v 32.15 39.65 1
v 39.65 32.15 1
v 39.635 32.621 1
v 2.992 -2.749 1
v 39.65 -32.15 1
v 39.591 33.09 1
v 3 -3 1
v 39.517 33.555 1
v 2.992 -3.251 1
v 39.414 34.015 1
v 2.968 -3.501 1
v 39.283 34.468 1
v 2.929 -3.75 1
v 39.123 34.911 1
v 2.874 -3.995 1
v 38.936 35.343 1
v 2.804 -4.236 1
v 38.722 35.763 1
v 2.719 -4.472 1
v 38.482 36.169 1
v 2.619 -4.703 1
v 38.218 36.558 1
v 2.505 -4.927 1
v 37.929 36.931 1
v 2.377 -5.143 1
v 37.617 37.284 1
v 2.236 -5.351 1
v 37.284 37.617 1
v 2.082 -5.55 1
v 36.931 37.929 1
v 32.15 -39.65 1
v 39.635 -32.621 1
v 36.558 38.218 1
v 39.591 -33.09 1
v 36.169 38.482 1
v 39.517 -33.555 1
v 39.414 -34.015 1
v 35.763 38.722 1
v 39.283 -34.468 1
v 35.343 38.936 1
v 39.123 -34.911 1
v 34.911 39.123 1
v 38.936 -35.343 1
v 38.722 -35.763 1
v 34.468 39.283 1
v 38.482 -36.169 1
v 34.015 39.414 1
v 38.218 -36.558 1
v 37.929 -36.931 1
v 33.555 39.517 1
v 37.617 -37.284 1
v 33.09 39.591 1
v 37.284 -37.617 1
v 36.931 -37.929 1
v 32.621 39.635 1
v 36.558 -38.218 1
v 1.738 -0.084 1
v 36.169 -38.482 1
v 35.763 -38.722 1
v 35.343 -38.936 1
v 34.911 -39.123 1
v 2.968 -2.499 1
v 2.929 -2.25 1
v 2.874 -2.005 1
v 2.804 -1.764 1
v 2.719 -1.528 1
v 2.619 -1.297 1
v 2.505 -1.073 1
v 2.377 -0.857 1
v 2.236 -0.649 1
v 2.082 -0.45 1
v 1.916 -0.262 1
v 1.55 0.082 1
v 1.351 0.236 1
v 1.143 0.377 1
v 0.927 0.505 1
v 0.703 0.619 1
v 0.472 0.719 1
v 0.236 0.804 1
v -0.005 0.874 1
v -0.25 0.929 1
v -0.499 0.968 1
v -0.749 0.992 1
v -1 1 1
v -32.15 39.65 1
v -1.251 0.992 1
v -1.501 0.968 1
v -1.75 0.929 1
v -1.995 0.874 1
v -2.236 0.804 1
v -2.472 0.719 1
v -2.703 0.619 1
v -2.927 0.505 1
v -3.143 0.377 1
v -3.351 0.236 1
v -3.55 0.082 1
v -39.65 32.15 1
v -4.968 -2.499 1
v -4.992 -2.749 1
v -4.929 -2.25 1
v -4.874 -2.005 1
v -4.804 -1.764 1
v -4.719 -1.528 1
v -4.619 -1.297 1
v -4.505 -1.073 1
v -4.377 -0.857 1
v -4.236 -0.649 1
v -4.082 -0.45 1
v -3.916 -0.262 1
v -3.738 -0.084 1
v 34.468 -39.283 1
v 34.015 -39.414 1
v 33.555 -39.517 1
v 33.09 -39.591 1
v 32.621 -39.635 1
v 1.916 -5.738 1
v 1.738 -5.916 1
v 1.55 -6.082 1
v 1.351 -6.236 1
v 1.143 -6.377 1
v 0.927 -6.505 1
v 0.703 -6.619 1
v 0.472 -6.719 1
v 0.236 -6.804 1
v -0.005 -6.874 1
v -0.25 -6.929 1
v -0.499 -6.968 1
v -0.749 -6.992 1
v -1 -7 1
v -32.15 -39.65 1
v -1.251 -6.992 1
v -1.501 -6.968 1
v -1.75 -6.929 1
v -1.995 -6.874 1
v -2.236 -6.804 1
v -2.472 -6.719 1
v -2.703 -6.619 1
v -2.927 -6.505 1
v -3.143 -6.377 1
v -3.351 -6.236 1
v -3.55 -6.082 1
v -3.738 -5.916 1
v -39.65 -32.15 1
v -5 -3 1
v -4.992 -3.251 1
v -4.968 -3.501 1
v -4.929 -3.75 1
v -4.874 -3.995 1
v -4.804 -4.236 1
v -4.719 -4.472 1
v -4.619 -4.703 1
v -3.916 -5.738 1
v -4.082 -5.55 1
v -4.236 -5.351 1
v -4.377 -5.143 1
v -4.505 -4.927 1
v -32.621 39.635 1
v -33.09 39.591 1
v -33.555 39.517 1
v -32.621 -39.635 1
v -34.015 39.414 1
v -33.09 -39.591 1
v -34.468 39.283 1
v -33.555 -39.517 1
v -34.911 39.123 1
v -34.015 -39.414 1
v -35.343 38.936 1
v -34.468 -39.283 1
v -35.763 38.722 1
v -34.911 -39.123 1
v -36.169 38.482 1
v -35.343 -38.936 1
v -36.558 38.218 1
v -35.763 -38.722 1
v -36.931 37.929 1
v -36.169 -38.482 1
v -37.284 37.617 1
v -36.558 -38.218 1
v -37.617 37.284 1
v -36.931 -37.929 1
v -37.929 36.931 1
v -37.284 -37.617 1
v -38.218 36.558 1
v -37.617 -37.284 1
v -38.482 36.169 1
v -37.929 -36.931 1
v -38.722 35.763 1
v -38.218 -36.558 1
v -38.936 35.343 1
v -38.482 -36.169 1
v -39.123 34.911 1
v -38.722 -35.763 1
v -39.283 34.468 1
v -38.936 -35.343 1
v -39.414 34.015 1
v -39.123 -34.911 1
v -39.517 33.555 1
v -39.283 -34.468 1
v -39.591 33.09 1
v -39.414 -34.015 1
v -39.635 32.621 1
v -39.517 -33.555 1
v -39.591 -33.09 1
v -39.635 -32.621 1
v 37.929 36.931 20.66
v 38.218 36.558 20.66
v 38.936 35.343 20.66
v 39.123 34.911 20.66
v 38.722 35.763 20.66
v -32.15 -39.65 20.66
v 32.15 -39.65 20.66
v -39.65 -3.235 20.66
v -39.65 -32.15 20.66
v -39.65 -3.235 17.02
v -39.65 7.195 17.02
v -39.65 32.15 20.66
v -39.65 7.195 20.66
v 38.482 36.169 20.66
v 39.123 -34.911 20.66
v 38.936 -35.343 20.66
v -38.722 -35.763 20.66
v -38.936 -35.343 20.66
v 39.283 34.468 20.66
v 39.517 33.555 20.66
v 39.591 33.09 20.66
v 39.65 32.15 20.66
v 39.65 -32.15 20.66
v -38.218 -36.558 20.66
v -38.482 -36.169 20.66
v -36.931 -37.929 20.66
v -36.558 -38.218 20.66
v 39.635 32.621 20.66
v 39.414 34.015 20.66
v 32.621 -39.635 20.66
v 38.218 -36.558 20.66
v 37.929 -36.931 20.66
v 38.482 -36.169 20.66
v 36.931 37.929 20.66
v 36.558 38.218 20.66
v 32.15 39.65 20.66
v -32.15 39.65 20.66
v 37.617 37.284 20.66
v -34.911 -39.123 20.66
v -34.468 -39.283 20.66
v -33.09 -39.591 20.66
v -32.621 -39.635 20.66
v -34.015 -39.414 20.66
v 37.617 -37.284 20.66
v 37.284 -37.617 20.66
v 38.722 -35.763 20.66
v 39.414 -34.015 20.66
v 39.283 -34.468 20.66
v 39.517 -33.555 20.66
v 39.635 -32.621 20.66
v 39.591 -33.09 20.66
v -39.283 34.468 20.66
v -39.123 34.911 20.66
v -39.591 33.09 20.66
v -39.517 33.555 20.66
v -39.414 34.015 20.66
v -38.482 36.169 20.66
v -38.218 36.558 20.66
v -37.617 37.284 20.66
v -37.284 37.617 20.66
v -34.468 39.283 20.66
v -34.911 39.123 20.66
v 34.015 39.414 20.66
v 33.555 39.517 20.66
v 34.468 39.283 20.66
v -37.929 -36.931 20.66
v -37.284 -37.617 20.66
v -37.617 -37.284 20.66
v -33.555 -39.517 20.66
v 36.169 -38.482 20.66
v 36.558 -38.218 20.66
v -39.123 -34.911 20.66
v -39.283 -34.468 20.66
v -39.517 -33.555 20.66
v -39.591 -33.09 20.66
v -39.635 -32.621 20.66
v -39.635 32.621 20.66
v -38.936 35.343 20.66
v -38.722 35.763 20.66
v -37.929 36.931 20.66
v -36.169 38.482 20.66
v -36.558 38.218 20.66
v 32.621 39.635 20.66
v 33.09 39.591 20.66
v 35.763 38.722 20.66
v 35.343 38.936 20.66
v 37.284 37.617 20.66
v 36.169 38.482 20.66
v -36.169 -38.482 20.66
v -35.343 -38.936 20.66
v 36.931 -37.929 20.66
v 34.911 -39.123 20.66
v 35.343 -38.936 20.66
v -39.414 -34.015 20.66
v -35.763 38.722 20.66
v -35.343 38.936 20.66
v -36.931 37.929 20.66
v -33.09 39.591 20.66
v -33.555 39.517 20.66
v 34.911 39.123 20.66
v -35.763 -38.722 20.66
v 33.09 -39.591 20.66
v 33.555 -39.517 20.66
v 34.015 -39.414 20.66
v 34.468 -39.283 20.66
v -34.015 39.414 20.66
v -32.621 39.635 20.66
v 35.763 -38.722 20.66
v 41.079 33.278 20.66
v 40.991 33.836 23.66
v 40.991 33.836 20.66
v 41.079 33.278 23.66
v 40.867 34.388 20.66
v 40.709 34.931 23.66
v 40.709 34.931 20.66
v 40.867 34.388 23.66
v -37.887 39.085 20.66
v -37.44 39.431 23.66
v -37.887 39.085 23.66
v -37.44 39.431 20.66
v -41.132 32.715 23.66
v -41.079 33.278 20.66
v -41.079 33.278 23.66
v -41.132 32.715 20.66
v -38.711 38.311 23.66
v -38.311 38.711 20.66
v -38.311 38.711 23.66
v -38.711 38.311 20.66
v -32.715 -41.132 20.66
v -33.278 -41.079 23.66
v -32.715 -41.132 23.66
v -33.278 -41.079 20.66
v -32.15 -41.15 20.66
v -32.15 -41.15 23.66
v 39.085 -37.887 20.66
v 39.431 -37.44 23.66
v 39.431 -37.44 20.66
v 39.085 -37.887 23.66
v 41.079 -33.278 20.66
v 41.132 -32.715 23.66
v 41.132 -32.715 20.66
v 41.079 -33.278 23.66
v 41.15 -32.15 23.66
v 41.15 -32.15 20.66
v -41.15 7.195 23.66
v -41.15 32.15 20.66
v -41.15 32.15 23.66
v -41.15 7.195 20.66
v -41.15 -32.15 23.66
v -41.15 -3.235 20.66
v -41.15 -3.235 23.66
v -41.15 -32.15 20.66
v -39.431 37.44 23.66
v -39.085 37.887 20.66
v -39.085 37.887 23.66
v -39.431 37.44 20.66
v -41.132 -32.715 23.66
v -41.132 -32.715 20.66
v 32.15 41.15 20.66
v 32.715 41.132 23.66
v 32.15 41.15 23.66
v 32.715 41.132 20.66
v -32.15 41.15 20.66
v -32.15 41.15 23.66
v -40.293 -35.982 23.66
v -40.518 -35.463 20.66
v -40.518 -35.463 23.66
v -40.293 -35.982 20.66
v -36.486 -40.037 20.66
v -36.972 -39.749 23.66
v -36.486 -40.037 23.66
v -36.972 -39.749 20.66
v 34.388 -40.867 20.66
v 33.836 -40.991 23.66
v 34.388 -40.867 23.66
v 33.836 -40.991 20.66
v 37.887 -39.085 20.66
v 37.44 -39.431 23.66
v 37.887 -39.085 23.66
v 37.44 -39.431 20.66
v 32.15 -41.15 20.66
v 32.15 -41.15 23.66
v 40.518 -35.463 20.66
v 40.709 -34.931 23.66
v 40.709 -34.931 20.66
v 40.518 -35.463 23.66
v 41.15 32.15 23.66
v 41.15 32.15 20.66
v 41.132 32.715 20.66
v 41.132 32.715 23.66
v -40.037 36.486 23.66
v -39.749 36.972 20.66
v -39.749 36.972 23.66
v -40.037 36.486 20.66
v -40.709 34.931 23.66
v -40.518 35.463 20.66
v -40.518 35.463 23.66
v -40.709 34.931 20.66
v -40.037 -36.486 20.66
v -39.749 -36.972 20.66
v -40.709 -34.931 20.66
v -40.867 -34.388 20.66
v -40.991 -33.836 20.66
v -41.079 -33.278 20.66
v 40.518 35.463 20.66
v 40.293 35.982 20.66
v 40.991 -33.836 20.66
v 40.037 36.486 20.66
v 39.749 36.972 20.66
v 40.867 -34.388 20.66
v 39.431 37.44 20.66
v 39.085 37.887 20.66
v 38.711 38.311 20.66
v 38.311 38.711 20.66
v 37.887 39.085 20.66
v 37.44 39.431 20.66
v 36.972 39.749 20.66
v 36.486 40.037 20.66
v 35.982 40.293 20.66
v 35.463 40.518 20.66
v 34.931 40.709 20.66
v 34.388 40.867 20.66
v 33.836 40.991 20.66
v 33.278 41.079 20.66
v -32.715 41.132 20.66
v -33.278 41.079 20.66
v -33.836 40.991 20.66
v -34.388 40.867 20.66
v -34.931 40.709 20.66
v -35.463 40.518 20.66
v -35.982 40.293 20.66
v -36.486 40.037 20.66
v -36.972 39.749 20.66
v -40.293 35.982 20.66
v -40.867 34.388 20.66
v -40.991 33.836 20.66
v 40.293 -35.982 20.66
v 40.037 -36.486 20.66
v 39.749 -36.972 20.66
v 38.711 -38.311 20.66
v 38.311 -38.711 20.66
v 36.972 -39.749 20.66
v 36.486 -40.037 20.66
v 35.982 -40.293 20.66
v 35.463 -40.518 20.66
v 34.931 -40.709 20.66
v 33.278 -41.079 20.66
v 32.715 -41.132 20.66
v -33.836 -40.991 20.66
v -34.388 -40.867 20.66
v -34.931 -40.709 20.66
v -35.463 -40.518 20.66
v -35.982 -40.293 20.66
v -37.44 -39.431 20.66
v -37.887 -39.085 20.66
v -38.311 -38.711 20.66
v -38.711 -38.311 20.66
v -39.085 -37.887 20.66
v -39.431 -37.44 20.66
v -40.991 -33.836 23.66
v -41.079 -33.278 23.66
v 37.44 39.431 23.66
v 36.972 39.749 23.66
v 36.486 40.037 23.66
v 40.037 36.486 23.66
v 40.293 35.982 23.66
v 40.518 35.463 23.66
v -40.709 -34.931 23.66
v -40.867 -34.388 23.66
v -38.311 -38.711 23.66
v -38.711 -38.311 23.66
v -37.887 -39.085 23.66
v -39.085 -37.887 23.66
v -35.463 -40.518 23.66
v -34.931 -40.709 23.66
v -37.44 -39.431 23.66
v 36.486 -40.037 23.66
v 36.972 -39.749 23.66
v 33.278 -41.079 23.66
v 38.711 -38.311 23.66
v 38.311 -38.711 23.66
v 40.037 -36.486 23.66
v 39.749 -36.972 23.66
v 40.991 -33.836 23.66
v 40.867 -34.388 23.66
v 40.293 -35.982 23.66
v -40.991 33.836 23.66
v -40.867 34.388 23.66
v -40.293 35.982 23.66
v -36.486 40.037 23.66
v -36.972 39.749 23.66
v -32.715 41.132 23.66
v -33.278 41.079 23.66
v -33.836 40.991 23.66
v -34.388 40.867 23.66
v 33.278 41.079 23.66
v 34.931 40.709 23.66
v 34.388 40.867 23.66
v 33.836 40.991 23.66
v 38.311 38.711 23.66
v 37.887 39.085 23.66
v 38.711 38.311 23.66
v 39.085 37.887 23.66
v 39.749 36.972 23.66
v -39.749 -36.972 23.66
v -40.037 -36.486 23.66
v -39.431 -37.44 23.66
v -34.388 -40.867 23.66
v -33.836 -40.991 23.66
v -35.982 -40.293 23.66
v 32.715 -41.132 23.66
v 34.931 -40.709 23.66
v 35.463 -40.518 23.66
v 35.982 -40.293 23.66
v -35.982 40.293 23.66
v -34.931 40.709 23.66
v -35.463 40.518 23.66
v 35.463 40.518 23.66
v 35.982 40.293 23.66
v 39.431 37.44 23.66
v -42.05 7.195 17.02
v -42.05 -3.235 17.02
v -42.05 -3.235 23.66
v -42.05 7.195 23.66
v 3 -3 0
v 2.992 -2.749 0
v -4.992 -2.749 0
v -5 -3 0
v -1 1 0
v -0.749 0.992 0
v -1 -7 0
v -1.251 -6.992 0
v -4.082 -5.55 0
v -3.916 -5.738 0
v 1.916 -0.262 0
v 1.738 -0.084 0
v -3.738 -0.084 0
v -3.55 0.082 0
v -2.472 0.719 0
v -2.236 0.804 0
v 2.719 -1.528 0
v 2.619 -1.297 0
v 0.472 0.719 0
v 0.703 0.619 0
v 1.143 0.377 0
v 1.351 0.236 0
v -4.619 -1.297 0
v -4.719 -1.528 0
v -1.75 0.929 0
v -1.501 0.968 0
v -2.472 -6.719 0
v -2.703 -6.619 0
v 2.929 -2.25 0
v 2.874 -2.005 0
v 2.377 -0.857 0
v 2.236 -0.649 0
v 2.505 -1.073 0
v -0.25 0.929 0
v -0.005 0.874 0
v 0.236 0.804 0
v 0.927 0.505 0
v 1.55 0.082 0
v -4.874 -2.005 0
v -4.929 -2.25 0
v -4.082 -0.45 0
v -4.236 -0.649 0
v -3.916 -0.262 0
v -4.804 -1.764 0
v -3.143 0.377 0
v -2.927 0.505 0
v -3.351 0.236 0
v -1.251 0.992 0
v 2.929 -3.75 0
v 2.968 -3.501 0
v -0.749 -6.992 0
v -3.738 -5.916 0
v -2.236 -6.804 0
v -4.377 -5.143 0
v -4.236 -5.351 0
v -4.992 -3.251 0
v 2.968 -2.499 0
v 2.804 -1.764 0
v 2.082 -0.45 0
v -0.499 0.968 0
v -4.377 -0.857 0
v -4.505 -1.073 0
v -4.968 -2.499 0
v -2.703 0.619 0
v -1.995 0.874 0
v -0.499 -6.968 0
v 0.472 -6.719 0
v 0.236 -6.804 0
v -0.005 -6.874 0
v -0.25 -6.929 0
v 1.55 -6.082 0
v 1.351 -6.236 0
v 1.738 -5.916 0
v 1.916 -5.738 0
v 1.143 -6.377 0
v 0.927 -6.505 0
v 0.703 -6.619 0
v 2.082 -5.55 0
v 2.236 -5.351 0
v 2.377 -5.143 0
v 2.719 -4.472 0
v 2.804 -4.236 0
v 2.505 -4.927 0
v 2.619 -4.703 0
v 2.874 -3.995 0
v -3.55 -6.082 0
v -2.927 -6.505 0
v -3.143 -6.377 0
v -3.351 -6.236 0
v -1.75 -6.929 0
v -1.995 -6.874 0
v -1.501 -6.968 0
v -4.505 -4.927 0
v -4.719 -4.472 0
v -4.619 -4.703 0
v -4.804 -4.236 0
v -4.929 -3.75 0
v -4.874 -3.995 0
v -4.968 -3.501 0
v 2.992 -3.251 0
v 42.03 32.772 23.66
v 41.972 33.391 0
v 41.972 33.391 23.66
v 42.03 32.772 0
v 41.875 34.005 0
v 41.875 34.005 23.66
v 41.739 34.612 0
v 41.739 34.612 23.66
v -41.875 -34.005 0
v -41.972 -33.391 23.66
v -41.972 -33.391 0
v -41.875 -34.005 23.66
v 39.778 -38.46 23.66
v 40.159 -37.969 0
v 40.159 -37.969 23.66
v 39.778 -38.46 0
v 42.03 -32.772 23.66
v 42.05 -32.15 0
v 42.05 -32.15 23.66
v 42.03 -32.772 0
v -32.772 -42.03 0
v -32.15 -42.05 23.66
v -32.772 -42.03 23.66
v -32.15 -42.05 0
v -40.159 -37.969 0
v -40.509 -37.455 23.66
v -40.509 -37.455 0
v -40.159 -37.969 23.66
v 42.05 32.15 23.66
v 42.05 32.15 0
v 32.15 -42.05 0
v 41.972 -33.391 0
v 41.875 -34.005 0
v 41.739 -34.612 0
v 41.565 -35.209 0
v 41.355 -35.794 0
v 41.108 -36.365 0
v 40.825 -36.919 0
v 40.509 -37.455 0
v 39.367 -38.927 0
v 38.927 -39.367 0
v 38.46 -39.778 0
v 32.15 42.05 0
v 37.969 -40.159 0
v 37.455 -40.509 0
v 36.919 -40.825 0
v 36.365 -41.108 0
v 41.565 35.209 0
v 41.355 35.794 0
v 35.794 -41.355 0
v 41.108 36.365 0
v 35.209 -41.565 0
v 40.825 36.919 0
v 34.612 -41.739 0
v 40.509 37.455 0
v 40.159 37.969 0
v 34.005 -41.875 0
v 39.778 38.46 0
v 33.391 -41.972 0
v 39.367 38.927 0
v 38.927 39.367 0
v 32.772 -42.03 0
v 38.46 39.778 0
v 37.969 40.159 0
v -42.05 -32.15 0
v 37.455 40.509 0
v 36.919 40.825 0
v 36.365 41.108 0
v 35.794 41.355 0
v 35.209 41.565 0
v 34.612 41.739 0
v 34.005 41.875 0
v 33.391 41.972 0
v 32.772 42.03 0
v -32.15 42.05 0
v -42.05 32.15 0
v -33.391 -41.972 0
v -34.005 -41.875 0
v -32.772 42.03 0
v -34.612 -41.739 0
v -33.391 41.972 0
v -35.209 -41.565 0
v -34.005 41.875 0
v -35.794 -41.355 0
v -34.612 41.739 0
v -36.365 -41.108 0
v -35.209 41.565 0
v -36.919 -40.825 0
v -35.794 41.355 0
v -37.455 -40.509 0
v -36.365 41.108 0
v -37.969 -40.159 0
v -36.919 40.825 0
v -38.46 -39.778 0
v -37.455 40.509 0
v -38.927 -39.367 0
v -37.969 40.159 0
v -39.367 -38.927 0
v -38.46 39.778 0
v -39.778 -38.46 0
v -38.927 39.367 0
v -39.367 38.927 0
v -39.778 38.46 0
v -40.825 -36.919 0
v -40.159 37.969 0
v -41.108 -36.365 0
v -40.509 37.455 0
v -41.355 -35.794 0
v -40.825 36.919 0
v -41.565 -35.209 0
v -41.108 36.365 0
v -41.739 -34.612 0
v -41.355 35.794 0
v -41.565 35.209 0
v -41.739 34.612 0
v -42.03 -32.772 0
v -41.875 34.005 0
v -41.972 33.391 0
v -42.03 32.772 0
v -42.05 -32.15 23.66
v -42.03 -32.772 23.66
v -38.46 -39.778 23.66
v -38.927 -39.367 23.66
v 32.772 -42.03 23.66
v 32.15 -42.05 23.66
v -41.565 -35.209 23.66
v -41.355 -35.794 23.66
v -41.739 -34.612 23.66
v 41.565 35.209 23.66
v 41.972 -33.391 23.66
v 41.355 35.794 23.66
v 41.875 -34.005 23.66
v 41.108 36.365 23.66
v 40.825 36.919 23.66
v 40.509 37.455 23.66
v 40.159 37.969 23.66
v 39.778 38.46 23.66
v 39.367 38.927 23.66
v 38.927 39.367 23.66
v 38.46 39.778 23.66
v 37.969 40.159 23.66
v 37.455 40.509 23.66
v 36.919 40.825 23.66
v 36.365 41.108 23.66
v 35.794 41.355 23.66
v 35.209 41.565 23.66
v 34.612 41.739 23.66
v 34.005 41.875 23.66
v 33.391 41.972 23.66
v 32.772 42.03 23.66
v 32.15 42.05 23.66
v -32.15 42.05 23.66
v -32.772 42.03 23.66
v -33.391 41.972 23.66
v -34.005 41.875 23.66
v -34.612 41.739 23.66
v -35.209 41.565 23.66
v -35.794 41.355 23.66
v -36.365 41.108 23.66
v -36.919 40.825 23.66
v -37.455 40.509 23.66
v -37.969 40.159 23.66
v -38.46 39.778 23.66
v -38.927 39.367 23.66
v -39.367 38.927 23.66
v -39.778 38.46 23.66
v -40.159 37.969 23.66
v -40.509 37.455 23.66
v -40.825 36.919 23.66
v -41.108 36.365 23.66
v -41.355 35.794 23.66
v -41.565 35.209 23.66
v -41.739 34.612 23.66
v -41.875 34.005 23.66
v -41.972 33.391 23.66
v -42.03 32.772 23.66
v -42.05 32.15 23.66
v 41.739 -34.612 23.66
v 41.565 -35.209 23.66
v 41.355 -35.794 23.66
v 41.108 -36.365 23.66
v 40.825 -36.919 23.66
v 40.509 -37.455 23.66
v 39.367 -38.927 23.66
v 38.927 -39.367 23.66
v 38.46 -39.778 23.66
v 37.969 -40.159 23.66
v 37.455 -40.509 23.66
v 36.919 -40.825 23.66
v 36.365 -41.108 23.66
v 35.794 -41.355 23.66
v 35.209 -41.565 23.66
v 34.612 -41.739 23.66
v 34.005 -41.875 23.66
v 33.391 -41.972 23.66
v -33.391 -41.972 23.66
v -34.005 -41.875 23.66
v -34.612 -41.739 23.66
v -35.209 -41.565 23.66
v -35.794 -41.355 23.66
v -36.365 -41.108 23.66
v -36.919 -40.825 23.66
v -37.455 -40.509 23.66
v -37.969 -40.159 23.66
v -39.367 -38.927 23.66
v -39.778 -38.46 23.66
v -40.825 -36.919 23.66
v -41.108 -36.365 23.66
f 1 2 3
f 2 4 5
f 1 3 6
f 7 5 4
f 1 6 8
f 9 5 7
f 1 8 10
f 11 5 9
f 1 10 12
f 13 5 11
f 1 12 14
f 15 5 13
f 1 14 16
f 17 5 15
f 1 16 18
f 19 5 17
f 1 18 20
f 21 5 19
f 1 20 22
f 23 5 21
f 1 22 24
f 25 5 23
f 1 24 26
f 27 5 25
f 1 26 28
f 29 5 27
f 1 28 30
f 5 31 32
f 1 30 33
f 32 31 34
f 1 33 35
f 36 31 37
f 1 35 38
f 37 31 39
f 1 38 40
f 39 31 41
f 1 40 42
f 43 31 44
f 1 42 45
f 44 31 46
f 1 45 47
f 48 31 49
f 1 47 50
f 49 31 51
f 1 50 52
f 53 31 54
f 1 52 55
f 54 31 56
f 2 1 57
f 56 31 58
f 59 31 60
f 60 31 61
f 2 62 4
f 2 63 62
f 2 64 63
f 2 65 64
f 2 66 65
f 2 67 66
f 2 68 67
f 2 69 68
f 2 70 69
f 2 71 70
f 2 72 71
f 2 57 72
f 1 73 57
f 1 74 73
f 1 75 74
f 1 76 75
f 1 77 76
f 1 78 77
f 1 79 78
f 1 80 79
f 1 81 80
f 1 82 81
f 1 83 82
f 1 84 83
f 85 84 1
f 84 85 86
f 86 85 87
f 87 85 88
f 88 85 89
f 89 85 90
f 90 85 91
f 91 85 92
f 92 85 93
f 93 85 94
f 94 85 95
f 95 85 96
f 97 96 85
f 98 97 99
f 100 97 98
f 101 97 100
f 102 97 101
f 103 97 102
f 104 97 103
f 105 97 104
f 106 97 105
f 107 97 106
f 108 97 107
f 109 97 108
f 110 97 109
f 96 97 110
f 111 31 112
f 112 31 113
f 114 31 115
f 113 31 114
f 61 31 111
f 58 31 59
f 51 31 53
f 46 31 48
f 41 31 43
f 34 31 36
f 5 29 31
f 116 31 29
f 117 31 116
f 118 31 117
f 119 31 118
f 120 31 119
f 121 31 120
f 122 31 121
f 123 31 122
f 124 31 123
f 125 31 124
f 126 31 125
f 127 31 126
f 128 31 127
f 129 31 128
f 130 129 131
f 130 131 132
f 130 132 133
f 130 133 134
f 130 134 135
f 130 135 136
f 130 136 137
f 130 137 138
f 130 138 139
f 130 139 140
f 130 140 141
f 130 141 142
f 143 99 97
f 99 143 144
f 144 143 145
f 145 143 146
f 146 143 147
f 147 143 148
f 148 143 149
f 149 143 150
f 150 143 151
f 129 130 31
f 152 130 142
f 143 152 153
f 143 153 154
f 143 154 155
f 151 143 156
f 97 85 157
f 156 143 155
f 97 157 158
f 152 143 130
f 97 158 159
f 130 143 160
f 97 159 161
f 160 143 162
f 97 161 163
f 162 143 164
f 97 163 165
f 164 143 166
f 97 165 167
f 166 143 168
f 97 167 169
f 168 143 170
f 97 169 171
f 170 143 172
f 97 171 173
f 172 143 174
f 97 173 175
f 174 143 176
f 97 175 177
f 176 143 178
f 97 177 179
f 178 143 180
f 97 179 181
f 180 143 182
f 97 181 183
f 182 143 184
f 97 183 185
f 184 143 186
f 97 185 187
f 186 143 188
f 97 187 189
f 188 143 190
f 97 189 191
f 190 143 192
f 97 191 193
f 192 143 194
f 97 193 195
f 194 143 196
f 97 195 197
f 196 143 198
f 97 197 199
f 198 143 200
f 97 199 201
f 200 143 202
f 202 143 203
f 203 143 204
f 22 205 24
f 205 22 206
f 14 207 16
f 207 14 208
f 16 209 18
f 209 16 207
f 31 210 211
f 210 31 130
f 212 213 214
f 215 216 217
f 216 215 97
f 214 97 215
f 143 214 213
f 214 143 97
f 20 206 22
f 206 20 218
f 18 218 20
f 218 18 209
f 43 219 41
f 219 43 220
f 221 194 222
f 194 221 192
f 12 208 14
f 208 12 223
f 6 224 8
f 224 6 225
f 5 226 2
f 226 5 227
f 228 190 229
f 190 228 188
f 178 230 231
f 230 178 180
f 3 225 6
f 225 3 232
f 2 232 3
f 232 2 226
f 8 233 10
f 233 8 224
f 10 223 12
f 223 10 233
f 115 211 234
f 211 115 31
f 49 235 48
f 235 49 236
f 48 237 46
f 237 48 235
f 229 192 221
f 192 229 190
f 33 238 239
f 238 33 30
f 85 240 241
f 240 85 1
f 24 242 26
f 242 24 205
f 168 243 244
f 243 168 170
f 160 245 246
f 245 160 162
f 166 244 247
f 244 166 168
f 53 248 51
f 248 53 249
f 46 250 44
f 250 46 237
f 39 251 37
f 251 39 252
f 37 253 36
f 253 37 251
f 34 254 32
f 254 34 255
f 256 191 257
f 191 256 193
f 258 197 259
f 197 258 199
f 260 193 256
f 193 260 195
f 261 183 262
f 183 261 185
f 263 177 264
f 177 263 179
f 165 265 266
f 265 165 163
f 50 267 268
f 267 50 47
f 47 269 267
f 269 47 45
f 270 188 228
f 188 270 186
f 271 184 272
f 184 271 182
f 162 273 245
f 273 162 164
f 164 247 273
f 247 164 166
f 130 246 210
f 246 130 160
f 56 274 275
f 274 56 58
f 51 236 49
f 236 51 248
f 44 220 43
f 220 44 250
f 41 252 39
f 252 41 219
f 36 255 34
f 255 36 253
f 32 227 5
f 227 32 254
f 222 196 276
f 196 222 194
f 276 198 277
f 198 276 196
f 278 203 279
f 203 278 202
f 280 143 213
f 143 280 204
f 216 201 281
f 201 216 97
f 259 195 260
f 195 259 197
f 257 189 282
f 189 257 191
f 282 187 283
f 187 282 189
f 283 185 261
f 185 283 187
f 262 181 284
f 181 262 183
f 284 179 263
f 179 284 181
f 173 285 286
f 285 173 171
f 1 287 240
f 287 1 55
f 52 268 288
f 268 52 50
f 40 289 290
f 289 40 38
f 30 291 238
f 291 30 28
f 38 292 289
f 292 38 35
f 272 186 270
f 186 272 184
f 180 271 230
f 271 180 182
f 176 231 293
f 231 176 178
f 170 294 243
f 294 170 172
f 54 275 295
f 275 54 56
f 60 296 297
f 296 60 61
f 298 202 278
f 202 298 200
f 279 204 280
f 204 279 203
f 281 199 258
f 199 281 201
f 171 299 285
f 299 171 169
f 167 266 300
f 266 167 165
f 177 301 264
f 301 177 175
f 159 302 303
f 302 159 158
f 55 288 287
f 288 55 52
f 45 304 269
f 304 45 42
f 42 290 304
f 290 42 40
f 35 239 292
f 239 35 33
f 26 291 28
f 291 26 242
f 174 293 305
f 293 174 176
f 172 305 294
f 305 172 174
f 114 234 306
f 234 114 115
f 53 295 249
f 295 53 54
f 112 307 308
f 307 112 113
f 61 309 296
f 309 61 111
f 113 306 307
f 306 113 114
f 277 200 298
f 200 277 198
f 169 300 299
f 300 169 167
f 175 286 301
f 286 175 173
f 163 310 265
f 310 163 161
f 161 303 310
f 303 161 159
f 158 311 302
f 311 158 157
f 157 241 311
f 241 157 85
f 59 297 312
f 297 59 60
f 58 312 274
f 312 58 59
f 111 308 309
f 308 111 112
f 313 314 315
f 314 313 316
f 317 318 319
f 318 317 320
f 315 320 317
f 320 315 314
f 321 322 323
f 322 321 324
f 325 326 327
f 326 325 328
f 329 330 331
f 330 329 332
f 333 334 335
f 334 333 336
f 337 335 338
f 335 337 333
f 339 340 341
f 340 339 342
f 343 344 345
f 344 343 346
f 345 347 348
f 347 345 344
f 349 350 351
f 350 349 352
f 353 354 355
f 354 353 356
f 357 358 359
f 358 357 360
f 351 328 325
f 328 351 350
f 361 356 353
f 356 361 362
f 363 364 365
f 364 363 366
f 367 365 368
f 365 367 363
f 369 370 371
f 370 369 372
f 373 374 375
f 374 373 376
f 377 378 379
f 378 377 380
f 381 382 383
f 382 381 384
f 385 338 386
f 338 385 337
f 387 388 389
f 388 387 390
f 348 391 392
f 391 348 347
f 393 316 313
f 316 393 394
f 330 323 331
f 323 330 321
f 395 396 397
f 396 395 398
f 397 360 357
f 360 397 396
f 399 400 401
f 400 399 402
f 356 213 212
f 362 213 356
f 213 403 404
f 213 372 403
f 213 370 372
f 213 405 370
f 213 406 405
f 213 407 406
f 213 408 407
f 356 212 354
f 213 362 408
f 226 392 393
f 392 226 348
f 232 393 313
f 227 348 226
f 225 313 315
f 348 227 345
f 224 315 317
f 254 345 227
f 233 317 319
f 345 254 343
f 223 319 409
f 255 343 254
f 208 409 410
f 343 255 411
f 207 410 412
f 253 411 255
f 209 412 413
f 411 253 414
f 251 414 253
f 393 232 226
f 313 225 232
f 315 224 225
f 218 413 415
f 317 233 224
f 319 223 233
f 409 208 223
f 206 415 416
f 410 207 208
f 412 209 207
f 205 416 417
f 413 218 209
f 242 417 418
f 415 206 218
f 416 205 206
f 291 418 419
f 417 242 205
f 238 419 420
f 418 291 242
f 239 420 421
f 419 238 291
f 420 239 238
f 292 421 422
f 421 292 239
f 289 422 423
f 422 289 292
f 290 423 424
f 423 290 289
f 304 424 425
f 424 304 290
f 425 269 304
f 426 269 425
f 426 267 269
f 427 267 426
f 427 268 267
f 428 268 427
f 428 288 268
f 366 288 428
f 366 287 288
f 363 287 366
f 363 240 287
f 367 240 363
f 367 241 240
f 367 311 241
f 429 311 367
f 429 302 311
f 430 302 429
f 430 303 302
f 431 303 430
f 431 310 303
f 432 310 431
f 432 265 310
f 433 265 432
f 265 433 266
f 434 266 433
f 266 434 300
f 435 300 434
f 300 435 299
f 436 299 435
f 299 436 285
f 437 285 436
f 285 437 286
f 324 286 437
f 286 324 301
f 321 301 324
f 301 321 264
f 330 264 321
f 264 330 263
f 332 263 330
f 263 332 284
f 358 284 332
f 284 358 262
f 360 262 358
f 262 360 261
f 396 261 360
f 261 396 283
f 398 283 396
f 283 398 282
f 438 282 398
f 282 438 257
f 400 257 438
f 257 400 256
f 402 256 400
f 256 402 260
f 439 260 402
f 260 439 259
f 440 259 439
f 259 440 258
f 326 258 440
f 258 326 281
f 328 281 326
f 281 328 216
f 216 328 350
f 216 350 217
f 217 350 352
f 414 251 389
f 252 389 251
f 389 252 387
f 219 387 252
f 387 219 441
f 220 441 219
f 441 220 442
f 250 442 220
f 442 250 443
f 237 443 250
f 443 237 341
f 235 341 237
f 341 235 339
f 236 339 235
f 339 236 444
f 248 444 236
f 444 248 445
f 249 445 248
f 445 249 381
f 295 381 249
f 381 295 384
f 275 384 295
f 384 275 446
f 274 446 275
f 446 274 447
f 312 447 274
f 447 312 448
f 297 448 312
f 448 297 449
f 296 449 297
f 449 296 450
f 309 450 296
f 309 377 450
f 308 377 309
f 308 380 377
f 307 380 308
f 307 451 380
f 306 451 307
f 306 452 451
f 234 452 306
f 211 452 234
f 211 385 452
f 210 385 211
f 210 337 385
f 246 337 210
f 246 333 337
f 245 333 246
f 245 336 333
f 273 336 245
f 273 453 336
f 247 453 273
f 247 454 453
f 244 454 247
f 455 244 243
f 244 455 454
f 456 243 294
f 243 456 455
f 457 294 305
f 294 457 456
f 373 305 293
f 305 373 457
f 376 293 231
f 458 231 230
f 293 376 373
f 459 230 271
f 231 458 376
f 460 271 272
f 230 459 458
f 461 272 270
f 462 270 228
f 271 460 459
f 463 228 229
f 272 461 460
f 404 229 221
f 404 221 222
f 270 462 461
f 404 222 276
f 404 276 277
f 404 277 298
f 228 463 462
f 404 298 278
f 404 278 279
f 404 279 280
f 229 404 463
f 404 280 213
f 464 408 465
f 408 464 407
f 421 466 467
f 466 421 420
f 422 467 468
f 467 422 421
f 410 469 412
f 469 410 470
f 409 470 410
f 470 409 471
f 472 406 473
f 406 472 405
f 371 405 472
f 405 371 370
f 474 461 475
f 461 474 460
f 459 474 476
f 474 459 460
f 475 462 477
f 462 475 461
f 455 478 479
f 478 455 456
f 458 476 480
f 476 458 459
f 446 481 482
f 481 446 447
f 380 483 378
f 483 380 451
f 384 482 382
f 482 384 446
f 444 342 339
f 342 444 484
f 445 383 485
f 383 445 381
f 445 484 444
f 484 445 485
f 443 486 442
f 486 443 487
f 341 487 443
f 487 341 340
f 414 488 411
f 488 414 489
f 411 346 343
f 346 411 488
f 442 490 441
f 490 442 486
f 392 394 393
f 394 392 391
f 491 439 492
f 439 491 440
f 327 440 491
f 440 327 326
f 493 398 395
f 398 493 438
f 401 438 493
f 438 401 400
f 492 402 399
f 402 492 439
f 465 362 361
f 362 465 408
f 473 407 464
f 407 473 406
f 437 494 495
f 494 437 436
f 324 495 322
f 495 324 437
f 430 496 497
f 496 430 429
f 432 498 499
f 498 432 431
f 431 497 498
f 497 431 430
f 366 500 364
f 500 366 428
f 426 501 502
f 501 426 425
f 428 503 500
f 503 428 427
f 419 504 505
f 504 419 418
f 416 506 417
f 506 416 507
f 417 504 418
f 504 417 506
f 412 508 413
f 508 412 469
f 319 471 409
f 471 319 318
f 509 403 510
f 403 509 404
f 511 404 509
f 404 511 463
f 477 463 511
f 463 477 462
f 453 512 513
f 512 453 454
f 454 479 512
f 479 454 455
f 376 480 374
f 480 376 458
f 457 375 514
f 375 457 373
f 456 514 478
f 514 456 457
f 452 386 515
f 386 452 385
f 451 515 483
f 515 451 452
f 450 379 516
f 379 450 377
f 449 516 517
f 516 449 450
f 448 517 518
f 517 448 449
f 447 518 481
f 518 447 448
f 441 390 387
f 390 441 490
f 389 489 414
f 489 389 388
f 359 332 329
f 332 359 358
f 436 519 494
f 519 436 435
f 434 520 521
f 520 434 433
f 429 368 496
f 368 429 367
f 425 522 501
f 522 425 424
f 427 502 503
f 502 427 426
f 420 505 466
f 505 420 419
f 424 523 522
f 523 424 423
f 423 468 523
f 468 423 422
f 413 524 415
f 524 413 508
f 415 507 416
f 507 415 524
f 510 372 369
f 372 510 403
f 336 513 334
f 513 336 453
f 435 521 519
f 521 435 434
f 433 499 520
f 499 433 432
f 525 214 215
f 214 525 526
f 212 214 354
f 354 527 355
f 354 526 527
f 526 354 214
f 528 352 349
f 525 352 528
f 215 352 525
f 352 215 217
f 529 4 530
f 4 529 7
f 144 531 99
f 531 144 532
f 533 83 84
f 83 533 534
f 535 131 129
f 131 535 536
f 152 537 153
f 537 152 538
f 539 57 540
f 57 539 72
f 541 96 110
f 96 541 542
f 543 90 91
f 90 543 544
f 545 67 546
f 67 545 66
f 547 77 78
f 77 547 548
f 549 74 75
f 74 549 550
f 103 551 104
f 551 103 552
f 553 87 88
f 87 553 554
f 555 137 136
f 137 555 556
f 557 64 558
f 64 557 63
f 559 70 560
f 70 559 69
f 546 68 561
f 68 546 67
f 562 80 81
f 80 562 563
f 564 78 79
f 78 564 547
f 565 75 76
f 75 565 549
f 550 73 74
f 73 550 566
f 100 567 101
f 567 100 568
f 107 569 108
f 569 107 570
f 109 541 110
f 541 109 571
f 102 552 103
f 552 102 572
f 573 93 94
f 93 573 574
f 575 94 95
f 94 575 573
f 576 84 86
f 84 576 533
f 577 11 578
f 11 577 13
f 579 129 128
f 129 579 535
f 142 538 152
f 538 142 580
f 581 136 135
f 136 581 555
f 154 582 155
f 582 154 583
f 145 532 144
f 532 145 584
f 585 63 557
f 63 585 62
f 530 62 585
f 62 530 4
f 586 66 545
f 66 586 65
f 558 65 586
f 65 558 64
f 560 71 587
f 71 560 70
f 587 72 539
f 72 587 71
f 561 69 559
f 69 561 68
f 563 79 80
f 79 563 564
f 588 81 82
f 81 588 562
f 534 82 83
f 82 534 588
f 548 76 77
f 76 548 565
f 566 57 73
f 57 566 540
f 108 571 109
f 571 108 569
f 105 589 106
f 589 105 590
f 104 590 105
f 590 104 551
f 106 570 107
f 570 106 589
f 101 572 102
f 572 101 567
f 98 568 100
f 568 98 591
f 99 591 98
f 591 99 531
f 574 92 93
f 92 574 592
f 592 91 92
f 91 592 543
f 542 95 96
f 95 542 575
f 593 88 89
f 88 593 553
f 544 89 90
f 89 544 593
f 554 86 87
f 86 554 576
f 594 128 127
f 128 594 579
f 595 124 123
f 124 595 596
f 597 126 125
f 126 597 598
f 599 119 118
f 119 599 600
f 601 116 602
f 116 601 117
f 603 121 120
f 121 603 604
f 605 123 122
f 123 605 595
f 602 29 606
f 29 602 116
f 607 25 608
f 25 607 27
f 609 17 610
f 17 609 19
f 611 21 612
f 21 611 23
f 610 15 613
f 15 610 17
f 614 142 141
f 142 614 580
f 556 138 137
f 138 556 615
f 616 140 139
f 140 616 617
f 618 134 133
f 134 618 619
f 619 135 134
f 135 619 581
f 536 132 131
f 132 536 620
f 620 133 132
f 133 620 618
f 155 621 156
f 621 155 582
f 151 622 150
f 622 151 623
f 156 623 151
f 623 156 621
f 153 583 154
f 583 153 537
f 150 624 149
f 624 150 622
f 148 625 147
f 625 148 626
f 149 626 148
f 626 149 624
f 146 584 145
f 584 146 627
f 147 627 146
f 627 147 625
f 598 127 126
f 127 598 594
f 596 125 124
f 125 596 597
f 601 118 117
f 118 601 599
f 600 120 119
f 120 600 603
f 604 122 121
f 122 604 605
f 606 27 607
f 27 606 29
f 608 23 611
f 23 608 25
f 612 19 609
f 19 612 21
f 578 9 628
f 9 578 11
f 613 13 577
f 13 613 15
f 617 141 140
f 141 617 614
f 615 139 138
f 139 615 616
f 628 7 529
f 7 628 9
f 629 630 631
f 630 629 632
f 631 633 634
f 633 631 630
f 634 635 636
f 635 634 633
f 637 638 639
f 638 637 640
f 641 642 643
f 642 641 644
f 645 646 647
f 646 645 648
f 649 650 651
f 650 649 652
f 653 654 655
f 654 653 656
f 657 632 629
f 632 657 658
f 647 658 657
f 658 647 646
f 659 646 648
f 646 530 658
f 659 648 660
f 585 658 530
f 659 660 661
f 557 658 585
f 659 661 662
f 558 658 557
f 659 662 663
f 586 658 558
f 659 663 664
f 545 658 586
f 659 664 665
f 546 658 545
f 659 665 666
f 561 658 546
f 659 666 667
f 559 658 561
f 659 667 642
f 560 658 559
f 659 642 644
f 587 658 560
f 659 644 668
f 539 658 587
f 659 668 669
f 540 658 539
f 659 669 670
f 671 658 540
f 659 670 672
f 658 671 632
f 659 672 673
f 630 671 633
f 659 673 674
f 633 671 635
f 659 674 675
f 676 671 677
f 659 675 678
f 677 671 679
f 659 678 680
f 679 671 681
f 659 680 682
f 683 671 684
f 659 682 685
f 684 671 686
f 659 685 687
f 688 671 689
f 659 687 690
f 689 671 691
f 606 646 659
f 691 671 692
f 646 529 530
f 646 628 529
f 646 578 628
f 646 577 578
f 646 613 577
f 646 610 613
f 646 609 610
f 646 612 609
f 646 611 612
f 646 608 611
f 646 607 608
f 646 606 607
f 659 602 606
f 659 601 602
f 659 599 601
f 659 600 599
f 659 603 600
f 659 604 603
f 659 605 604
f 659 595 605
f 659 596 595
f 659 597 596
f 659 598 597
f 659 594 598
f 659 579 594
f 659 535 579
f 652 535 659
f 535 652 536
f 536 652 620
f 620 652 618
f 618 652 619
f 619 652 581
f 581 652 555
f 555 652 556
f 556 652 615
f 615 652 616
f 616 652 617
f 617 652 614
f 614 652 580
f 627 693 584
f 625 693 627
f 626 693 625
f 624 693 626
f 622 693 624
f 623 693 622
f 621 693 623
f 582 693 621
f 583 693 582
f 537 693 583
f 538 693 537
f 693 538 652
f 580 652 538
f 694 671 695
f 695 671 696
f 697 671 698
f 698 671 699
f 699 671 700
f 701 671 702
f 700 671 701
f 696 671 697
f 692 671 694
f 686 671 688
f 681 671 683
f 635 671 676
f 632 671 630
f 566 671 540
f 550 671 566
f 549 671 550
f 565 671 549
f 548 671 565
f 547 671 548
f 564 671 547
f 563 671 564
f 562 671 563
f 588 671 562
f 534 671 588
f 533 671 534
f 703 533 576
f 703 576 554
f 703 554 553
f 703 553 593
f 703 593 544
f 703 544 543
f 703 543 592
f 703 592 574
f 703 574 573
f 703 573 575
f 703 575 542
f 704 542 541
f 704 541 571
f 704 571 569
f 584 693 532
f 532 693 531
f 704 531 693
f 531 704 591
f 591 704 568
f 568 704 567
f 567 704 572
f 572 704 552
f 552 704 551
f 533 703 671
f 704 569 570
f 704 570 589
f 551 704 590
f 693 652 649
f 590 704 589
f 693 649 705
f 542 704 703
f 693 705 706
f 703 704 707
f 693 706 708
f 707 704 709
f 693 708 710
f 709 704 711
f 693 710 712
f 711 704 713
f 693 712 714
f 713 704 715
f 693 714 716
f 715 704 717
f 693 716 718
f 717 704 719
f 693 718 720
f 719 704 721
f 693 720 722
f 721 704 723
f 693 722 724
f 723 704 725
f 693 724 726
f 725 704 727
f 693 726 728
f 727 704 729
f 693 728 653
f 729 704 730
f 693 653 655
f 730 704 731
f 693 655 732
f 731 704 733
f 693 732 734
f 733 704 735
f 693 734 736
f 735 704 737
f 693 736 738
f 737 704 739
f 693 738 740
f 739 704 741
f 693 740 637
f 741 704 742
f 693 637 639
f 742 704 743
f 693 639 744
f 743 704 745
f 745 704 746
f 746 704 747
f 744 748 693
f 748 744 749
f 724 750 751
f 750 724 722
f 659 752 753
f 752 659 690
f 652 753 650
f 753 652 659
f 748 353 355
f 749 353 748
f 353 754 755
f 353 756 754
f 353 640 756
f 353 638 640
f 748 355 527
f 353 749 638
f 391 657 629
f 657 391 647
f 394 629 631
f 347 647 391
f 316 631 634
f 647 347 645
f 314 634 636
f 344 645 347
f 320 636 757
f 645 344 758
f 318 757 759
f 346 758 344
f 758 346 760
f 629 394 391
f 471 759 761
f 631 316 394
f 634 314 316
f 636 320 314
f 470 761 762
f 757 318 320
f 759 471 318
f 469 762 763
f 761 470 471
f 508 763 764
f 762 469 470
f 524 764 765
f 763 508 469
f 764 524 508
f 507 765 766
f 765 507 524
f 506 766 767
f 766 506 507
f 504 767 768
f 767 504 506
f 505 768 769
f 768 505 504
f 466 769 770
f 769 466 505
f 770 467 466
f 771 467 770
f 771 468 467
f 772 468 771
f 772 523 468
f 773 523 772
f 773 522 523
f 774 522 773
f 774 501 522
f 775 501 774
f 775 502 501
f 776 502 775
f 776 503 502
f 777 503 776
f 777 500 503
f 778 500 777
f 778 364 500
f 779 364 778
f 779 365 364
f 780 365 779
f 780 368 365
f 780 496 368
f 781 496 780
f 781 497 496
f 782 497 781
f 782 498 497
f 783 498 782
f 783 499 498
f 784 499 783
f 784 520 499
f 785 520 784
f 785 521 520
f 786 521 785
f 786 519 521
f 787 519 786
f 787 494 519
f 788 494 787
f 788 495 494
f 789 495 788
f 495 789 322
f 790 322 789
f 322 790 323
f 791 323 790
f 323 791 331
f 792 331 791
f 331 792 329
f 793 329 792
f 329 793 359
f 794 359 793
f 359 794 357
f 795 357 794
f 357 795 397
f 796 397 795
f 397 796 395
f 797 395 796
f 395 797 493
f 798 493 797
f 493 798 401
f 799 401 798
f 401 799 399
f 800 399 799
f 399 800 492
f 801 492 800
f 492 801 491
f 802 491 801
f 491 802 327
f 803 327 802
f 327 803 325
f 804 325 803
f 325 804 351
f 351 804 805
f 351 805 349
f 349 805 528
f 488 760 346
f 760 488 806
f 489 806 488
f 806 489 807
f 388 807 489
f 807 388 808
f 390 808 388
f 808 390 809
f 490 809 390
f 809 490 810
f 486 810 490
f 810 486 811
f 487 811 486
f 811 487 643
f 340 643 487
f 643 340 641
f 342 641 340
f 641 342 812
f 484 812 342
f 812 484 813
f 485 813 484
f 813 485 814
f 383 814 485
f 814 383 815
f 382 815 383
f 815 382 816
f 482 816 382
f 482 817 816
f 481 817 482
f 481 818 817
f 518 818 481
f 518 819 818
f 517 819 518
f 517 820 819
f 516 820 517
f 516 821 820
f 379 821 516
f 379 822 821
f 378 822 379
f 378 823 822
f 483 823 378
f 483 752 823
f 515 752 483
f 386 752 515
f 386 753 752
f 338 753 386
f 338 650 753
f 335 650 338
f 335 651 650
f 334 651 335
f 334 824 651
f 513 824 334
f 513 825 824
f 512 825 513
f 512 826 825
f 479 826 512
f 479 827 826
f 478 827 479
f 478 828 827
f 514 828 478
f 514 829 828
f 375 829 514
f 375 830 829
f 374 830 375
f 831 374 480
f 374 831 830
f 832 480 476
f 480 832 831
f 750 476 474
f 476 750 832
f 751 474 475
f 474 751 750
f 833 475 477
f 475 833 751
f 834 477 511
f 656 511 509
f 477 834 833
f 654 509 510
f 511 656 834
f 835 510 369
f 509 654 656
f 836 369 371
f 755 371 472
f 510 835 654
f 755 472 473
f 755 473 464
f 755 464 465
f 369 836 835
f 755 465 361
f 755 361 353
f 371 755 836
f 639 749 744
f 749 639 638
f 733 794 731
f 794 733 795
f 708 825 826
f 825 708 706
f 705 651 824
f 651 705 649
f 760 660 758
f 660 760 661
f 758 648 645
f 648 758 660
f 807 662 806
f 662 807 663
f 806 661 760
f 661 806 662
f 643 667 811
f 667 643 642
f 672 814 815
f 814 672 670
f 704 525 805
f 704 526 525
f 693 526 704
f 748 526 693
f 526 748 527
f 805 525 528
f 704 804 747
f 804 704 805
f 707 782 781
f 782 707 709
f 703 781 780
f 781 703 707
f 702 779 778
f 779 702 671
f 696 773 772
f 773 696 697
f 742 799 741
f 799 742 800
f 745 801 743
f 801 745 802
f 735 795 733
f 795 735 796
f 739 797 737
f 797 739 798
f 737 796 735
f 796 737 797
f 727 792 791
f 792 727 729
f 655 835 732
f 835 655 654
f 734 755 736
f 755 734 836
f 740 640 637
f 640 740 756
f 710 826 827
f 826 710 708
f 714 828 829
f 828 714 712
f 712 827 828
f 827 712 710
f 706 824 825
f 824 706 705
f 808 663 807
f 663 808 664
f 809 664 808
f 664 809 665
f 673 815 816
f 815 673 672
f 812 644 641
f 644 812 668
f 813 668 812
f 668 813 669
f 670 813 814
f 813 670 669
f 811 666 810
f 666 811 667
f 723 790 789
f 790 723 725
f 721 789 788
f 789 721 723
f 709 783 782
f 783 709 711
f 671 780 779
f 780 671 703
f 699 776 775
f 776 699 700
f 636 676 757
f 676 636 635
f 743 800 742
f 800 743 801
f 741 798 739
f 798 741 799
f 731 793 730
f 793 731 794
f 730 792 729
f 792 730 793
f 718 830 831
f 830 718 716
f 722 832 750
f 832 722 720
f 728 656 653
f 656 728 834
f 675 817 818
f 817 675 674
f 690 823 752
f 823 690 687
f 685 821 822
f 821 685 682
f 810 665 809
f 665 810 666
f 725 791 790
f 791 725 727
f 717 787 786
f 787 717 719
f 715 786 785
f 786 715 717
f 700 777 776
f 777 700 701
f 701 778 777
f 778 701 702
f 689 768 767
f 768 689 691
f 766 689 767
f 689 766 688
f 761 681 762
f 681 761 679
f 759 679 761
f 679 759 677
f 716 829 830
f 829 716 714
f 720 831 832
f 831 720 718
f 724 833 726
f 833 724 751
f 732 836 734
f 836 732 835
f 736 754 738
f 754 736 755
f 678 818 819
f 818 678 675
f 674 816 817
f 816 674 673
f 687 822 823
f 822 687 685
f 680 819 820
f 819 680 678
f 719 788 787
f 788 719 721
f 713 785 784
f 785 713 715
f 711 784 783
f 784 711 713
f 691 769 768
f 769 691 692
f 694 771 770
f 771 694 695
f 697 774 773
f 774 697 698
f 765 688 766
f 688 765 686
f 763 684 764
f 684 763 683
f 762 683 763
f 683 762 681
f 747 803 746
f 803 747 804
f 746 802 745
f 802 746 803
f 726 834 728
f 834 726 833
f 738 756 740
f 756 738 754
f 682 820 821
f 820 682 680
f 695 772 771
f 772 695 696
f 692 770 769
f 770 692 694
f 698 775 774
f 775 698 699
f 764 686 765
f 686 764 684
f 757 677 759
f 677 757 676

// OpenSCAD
// file: protogasm_param.scad
//  ----------------------------------------------------------------------- LICENSE
//  This "3D Printed Case for Arduino Uno, Leonardo" by Zygmunt Wojcik is licensed
//  under the Creative Commons Attribution-ShareAlike 3.0 Unported License.
//  To view a copy of this license, visit
//  http://creativecommons.org/licenses/by-sa/3.0/
//  or send a letter to Creative Commons, PO Box 1866, Mountain View, CA 94042, USA.


//------------------------------------------------------------------------- SHARED PARAMETERS
$fn=100; // resolution

circleD = 21; // round corner circle diameter
roundR = circleD/2; // round corner circle radius
triangleH = (sqrt(3)*(circleD))/2; // triangle height to calculate other variables

layerHeight = 0.25; // some variariables are multiple of layer height and width
layerWidth = 0.5;

verConnectionHoleR = 1.2; // screw thread hole radius
screwHead = 6; // screw head hole diameter

gap = layerHeight/2;

floorHeight = 1.0; // 6*0.25 layer + 0.3 first layer

height = 20.6; // case height
innerHeight = height - floorHeight*2;

pillarSize = 3.0; // corner pillar size

// dimensions of minkowski's inner square
// these are NOT case dimensions
// to calculate external case dimesions add 2 * roundR
// 55.3 + (2*10.5) = 76.3
width = 65.3;
wide = 65.3;

blockLockSize = 2; // middle connection lock size

// side cutting panels size
sidePanelXWidth = wide;
sidePanelYWidth = width;

// prints dimensions of the case
echo("width", width + roundR*2); // total width
echo("wide", wide + roundR*2); // total wide

// UNO PCB dimensions
pcbWide=43.3;
pcbLenght=68.58;
pcbHeight=1.64;
usbHolePosition=38.1;
usbHeight=10.8 + 2;
usbWide=11.43 + 2;
powerJackPosition=7.62;
powerJackWide=8.9;
powerJackHeight=10.8 + 2;

pcbPositionX = (width/2 + roundR - layerWidth*7 - gap*4)-7;
pcbPositionZ = 2.5;
// main file
//  ----------------------------------------------------------------------- LICENSE
//  This "3D Printed Case for Arduino Uno, Leonardo" by Zygmunt Wojcik is licensed
//  under the Creative Commons Attribution-ShareAlike 3.0 Unported License.
//  To view a copy of this license, visit
//  http://creativecommons.org/licenses/by-sa/3.0/
//  or send a letter to Creative Commons, PO Box 1866, Mountain View, CA 94042, USA.


include <protogasm_param.scad>


extra_headroom = 11.36;

knob_position = [-1,-3,0];

width = 65.3 - 1;
wide = 65.3 - 1;

//------------------------------------------------------------------------- MAIN BLOCK
difference() {
	// ADD
	union() {
		// Add Base
		linear_extrude(height = height/2 + blockLockSize + extra_headroom, convexity = 10)
		minkowski() {
			square([width, wide], center = true);
			circle(roundR-0.6);
		}
	}
																	// SUBSTRACT
	union() {
		// lift floor height
		translate([0, 0, floorHeight]) {
			// Cut base inner hole
			linear_extrude(height = height + extra_headroom, convexity = 10)
			minkowski() {
				square([width, wide], center = true);
				circle(roundR - pillarSize);
			}

			// Cut block lock
			translate([0, 0, height/2 - blockLockSize + extra_headroom])
			linear_extrude(height = height + extra_headroom, convexity = 10)
			minkowski() {
				square([width, wide], center = true);
				circle(roundR - layerWidth*3);
			}

			// Cut x panels 
			for (i = [0 : 180 : 180])
			rotate([0, 0, i])
			translate([width/2 + roundR - pillarSize/2 - layerWidth*7, 0, 0]) {
				// Cut X panel hole
				translate([0, 0, (height+extra_headroom)/2 ])
				cube([pillarSize, sidePanelXWidth, height + extra_headroom], center=true);			
			}

			// Cut Y panels 
			for (i = [90 : 180 : 270])
			rotate([0, 0, i])
			translate([wide/2 + roundR - pillarSize/2 - layerWidth*7, 0, 0]) {
				// Cut Y panel hole
				translate([0, 0, (height+extra_headroom)/2])
				cube([pillarSize, sidePanelYWidth, height+extra_headroom], center=true);
			}
			
            // Cut access holes
			// Rotate due to panel upside down
			mirror([0, 1 , 0])
            
			// translate to pcb position
			translate([-pcbPositionX-7, -pcbWide/2-5, height - pcbPositionZ -pcbHeight - 4 + extra_headroom]) {
                // Cut pressure sensor hole
				translate([0, usbHolePosition - usbWide, -(usbHeight-10)/2])
				cube([10, usbWide-3, usbHeight], center=true);
			}
		}

		//Knob hole
		translate(knob_position)
		cylinder(h=20, r = 8/2, center=true);
	}
}
